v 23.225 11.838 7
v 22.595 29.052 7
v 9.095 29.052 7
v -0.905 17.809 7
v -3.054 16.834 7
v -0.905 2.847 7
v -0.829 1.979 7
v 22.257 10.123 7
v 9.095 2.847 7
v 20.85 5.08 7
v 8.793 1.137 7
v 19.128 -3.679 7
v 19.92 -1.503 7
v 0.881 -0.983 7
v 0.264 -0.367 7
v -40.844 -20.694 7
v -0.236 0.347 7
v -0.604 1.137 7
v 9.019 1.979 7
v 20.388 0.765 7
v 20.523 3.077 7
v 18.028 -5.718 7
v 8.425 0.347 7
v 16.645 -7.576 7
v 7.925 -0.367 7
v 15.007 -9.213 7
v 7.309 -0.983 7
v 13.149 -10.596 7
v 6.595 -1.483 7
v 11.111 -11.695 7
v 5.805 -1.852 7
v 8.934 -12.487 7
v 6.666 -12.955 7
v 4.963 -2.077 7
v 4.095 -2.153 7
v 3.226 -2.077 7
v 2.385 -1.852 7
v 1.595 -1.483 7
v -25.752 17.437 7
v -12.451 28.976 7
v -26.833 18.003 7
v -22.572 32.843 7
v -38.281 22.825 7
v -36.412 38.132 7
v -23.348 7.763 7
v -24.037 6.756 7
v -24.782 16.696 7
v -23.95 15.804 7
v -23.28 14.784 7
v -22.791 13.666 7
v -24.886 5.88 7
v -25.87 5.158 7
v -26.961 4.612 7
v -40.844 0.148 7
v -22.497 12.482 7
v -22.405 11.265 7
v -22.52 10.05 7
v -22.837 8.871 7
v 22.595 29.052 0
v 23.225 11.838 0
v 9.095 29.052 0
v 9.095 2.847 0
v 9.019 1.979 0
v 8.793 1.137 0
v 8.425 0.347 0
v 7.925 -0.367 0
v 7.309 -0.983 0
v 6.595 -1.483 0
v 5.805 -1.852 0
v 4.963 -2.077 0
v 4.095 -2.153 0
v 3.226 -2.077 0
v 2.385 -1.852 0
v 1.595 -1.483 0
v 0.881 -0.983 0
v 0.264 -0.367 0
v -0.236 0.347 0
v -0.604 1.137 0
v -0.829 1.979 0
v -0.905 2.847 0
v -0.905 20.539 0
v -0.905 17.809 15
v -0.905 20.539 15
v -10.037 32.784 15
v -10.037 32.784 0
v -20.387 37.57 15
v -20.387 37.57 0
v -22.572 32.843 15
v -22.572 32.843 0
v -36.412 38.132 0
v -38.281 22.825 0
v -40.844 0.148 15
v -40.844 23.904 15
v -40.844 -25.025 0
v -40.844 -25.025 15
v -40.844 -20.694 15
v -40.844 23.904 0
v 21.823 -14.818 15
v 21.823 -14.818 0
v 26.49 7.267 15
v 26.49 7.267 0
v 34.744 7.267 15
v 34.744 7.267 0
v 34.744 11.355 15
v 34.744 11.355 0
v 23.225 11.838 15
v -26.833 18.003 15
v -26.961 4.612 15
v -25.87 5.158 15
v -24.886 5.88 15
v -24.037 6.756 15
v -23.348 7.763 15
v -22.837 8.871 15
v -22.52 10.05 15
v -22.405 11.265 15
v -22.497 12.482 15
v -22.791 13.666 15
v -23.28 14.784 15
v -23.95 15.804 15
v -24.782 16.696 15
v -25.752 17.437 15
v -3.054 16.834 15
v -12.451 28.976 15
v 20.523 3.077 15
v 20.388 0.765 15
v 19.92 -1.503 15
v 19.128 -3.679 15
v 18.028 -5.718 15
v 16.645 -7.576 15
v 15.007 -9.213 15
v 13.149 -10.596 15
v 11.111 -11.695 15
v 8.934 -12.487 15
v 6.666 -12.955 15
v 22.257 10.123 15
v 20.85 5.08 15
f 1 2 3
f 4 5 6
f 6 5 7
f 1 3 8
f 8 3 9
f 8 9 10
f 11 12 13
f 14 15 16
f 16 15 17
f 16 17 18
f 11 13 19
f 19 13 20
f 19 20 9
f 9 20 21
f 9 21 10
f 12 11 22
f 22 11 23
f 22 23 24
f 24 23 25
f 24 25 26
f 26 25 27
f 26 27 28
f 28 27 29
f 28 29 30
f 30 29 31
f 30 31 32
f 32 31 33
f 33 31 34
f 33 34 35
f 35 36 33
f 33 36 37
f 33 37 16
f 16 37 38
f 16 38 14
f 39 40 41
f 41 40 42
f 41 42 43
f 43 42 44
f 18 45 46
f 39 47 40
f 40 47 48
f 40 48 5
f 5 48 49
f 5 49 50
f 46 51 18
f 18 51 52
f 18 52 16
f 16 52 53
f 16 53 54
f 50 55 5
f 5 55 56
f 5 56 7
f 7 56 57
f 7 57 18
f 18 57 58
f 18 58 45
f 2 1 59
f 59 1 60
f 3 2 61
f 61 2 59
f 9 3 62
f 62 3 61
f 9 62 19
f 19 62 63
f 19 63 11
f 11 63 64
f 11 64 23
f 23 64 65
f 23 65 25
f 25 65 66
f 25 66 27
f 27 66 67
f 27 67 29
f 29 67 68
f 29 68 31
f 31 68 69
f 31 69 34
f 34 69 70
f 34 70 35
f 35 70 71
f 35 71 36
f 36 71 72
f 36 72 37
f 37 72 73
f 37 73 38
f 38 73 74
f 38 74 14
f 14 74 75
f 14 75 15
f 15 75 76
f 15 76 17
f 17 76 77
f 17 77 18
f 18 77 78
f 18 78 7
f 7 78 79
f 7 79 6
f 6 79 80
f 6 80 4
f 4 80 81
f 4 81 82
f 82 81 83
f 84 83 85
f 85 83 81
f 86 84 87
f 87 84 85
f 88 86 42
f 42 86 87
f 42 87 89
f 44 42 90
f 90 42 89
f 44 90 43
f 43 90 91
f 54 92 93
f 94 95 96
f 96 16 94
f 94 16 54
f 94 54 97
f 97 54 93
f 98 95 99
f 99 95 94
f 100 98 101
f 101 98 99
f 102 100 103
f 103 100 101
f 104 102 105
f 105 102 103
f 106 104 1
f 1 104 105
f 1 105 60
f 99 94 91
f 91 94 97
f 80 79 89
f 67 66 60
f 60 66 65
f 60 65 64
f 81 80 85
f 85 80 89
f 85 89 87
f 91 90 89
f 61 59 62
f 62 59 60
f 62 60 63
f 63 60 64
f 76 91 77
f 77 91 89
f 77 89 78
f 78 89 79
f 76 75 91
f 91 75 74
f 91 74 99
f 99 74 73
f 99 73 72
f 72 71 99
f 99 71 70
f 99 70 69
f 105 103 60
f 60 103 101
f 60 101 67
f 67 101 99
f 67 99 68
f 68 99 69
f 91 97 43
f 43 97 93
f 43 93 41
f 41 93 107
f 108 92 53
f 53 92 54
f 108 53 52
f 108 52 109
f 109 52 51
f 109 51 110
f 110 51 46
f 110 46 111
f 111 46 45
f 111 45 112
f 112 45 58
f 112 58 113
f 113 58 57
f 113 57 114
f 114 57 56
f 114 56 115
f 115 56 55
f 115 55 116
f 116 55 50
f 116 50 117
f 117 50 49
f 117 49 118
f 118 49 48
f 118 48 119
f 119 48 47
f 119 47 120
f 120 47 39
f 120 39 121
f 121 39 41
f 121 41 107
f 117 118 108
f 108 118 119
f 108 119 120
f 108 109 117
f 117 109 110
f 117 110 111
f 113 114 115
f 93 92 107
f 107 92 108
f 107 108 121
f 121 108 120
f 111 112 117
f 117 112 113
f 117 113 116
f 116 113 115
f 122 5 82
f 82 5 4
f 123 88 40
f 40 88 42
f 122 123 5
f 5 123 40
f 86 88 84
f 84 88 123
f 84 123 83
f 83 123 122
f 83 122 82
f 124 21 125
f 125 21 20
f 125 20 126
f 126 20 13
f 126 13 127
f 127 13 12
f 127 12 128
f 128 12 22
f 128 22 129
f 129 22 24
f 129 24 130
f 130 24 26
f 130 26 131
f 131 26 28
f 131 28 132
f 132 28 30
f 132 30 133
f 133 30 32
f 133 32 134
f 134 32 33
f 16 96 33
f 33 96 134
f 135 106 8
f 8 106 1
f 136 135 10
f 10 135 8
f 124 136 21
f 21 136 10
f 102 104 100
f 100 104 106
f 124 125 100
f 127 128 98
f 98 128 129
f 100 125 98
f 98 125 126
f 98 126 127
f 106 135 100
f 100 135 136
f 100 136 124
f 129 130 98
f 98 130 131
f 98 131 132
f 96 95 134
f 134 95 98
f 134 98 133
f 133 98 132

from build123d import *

# Parameters (mm, degrees)
BOSS_EXTRUDE2_DEPTH = 7
BOSS_EXTRUDE3_DEPTH = 15


with BuildPart() as part:
    # Sketch1 → Boss-Extrude2 (new body)
    with BuildSketch(Plane.XY):
        with BuildLine():
            Line((-40.843938812, -25.02529653), (21.822672825, -14.817519442))
            Line((21.822672825, -14.817519442), (26.489801196, 7.266810726))
            Line((26.489801196, 7.266810726), (34.744303123, 7.266810726))
            Line((34.744303123, 7.266810726), (34.744303123, 11.354641566))
            Line((34.744303123, 11.354641566), (23.2245968, 11.838054321))
            Line((23.2245968, 11.838054321), (22.594616957, 29.052034329))
            Line((22.594616957, 29.052034329), (9.094616957, 29.052034329))
            Line((9.094616957, 29.052034329), (9.094616957, 2.846901584))
            ThreePointArc((9.094616957, 2.846901584), (4.094616957, -2.153098416), (-0.905383043, 2.846901584))
            Line((-0.905383043, 2.846901584), (-0.905383043, 20.539136331))
            Line((-0.905383043, 20.539136331), (-10.036820206, 32.783811613))
            Line((-10.036820206, 32.783811613), (-20.38656022, 37.570023616))
            Line((-20.38656022, 37.570023616), (-22.572356812, 32.843440998))
            Line((-22.572356812, 32.843440998), (-36.411901157, 38.132027383))
            Line((-36.411901157, 38.132027383), (-40.843938812, 1.825568171))
            Line((-40.843938812, 1.825568171), (-40.843938812, -25.02529653))
        make_face()
    extrude(amount=BOSS_EXTRUDE2_DEPTH)

    # Sketch1<7> → Boss-Extrude3 (add)
    with BuildSketch(Plane.XY):
        with BuildLine():
            ThreePointArc((-3.054484565, 16.834095496), (-1.998003486, 17.361409284), (-0.905383043, 17.809061684))
            Line((-0.905383043, 17.809061684), (-0.905383043, 20.539136331))
            Line((-0.905383043, 20.539136331), (-10.036820206, 32.783811613))
            Line((-10.036820206, 32.783811613), (-20.38656022, 37.570023616))
            Line((-20.38656022, 37.570023616), (-22.572356812, 32.843440998))
            Line((-22.572356812, 32.843440998), (-12.451357463, 28.975844058))
            Line((-12.451357463, 28.975844058), (-3.054484565, 16.834095496))
        make_face()
        with BuildLine():
            ThreePointArc((20.523303512, 3.077207951), (16.644968484, -7.575511067), (6.665935601, -12.955177206))
            Line((6.665935601, -12.955177206), (-40.843938812, -20.694070291))
            Line((-40.843938812, -20.694070291), (-40.843938812, -25.02529653))
            Line((-40.843938812, -25.02529653), (21.822672825, -14.817519442))
            Line((21.822672825, -14.817519442), (26.489801196, 7.266810726))
            Line((26.489801196, 7.266810726), (34.744303123, 7.266810726))
            Line((34.744303123, 7.266810726), (34.744303123, 11.354641566))
            Line((34.744303123, 11.354641566), (23.2245968, 11.838054321))
            Line((23.2245968, 11.838054321), (22.257186267, 10.122973627))
            Line((22.257186267, 10.122973627), (20.850125794, 5.080010211))
            Line((20.850125794, 5.080010211), (20.523303512, 3.077207951))
        make_face()
        with BuildLine():
            Line((-26.832821067, 18.003435216), (-40.843938812, 23.904400779))
            Line((-40.843938812, 23.904400779), (-40.843938812, 0.147997265))
            Line((-40.843938812, 0.147997265), (-26.961449929, 4.612329337))
            ThreePointArc((-26.961449929, 4.612329337), (-22.405428772, 11.264736988), (-26.832821067, 18.003435216))
        make_face()
    extrude(amount=BOSS_EXTRUDE3_DEPTH)


solid = part.part
